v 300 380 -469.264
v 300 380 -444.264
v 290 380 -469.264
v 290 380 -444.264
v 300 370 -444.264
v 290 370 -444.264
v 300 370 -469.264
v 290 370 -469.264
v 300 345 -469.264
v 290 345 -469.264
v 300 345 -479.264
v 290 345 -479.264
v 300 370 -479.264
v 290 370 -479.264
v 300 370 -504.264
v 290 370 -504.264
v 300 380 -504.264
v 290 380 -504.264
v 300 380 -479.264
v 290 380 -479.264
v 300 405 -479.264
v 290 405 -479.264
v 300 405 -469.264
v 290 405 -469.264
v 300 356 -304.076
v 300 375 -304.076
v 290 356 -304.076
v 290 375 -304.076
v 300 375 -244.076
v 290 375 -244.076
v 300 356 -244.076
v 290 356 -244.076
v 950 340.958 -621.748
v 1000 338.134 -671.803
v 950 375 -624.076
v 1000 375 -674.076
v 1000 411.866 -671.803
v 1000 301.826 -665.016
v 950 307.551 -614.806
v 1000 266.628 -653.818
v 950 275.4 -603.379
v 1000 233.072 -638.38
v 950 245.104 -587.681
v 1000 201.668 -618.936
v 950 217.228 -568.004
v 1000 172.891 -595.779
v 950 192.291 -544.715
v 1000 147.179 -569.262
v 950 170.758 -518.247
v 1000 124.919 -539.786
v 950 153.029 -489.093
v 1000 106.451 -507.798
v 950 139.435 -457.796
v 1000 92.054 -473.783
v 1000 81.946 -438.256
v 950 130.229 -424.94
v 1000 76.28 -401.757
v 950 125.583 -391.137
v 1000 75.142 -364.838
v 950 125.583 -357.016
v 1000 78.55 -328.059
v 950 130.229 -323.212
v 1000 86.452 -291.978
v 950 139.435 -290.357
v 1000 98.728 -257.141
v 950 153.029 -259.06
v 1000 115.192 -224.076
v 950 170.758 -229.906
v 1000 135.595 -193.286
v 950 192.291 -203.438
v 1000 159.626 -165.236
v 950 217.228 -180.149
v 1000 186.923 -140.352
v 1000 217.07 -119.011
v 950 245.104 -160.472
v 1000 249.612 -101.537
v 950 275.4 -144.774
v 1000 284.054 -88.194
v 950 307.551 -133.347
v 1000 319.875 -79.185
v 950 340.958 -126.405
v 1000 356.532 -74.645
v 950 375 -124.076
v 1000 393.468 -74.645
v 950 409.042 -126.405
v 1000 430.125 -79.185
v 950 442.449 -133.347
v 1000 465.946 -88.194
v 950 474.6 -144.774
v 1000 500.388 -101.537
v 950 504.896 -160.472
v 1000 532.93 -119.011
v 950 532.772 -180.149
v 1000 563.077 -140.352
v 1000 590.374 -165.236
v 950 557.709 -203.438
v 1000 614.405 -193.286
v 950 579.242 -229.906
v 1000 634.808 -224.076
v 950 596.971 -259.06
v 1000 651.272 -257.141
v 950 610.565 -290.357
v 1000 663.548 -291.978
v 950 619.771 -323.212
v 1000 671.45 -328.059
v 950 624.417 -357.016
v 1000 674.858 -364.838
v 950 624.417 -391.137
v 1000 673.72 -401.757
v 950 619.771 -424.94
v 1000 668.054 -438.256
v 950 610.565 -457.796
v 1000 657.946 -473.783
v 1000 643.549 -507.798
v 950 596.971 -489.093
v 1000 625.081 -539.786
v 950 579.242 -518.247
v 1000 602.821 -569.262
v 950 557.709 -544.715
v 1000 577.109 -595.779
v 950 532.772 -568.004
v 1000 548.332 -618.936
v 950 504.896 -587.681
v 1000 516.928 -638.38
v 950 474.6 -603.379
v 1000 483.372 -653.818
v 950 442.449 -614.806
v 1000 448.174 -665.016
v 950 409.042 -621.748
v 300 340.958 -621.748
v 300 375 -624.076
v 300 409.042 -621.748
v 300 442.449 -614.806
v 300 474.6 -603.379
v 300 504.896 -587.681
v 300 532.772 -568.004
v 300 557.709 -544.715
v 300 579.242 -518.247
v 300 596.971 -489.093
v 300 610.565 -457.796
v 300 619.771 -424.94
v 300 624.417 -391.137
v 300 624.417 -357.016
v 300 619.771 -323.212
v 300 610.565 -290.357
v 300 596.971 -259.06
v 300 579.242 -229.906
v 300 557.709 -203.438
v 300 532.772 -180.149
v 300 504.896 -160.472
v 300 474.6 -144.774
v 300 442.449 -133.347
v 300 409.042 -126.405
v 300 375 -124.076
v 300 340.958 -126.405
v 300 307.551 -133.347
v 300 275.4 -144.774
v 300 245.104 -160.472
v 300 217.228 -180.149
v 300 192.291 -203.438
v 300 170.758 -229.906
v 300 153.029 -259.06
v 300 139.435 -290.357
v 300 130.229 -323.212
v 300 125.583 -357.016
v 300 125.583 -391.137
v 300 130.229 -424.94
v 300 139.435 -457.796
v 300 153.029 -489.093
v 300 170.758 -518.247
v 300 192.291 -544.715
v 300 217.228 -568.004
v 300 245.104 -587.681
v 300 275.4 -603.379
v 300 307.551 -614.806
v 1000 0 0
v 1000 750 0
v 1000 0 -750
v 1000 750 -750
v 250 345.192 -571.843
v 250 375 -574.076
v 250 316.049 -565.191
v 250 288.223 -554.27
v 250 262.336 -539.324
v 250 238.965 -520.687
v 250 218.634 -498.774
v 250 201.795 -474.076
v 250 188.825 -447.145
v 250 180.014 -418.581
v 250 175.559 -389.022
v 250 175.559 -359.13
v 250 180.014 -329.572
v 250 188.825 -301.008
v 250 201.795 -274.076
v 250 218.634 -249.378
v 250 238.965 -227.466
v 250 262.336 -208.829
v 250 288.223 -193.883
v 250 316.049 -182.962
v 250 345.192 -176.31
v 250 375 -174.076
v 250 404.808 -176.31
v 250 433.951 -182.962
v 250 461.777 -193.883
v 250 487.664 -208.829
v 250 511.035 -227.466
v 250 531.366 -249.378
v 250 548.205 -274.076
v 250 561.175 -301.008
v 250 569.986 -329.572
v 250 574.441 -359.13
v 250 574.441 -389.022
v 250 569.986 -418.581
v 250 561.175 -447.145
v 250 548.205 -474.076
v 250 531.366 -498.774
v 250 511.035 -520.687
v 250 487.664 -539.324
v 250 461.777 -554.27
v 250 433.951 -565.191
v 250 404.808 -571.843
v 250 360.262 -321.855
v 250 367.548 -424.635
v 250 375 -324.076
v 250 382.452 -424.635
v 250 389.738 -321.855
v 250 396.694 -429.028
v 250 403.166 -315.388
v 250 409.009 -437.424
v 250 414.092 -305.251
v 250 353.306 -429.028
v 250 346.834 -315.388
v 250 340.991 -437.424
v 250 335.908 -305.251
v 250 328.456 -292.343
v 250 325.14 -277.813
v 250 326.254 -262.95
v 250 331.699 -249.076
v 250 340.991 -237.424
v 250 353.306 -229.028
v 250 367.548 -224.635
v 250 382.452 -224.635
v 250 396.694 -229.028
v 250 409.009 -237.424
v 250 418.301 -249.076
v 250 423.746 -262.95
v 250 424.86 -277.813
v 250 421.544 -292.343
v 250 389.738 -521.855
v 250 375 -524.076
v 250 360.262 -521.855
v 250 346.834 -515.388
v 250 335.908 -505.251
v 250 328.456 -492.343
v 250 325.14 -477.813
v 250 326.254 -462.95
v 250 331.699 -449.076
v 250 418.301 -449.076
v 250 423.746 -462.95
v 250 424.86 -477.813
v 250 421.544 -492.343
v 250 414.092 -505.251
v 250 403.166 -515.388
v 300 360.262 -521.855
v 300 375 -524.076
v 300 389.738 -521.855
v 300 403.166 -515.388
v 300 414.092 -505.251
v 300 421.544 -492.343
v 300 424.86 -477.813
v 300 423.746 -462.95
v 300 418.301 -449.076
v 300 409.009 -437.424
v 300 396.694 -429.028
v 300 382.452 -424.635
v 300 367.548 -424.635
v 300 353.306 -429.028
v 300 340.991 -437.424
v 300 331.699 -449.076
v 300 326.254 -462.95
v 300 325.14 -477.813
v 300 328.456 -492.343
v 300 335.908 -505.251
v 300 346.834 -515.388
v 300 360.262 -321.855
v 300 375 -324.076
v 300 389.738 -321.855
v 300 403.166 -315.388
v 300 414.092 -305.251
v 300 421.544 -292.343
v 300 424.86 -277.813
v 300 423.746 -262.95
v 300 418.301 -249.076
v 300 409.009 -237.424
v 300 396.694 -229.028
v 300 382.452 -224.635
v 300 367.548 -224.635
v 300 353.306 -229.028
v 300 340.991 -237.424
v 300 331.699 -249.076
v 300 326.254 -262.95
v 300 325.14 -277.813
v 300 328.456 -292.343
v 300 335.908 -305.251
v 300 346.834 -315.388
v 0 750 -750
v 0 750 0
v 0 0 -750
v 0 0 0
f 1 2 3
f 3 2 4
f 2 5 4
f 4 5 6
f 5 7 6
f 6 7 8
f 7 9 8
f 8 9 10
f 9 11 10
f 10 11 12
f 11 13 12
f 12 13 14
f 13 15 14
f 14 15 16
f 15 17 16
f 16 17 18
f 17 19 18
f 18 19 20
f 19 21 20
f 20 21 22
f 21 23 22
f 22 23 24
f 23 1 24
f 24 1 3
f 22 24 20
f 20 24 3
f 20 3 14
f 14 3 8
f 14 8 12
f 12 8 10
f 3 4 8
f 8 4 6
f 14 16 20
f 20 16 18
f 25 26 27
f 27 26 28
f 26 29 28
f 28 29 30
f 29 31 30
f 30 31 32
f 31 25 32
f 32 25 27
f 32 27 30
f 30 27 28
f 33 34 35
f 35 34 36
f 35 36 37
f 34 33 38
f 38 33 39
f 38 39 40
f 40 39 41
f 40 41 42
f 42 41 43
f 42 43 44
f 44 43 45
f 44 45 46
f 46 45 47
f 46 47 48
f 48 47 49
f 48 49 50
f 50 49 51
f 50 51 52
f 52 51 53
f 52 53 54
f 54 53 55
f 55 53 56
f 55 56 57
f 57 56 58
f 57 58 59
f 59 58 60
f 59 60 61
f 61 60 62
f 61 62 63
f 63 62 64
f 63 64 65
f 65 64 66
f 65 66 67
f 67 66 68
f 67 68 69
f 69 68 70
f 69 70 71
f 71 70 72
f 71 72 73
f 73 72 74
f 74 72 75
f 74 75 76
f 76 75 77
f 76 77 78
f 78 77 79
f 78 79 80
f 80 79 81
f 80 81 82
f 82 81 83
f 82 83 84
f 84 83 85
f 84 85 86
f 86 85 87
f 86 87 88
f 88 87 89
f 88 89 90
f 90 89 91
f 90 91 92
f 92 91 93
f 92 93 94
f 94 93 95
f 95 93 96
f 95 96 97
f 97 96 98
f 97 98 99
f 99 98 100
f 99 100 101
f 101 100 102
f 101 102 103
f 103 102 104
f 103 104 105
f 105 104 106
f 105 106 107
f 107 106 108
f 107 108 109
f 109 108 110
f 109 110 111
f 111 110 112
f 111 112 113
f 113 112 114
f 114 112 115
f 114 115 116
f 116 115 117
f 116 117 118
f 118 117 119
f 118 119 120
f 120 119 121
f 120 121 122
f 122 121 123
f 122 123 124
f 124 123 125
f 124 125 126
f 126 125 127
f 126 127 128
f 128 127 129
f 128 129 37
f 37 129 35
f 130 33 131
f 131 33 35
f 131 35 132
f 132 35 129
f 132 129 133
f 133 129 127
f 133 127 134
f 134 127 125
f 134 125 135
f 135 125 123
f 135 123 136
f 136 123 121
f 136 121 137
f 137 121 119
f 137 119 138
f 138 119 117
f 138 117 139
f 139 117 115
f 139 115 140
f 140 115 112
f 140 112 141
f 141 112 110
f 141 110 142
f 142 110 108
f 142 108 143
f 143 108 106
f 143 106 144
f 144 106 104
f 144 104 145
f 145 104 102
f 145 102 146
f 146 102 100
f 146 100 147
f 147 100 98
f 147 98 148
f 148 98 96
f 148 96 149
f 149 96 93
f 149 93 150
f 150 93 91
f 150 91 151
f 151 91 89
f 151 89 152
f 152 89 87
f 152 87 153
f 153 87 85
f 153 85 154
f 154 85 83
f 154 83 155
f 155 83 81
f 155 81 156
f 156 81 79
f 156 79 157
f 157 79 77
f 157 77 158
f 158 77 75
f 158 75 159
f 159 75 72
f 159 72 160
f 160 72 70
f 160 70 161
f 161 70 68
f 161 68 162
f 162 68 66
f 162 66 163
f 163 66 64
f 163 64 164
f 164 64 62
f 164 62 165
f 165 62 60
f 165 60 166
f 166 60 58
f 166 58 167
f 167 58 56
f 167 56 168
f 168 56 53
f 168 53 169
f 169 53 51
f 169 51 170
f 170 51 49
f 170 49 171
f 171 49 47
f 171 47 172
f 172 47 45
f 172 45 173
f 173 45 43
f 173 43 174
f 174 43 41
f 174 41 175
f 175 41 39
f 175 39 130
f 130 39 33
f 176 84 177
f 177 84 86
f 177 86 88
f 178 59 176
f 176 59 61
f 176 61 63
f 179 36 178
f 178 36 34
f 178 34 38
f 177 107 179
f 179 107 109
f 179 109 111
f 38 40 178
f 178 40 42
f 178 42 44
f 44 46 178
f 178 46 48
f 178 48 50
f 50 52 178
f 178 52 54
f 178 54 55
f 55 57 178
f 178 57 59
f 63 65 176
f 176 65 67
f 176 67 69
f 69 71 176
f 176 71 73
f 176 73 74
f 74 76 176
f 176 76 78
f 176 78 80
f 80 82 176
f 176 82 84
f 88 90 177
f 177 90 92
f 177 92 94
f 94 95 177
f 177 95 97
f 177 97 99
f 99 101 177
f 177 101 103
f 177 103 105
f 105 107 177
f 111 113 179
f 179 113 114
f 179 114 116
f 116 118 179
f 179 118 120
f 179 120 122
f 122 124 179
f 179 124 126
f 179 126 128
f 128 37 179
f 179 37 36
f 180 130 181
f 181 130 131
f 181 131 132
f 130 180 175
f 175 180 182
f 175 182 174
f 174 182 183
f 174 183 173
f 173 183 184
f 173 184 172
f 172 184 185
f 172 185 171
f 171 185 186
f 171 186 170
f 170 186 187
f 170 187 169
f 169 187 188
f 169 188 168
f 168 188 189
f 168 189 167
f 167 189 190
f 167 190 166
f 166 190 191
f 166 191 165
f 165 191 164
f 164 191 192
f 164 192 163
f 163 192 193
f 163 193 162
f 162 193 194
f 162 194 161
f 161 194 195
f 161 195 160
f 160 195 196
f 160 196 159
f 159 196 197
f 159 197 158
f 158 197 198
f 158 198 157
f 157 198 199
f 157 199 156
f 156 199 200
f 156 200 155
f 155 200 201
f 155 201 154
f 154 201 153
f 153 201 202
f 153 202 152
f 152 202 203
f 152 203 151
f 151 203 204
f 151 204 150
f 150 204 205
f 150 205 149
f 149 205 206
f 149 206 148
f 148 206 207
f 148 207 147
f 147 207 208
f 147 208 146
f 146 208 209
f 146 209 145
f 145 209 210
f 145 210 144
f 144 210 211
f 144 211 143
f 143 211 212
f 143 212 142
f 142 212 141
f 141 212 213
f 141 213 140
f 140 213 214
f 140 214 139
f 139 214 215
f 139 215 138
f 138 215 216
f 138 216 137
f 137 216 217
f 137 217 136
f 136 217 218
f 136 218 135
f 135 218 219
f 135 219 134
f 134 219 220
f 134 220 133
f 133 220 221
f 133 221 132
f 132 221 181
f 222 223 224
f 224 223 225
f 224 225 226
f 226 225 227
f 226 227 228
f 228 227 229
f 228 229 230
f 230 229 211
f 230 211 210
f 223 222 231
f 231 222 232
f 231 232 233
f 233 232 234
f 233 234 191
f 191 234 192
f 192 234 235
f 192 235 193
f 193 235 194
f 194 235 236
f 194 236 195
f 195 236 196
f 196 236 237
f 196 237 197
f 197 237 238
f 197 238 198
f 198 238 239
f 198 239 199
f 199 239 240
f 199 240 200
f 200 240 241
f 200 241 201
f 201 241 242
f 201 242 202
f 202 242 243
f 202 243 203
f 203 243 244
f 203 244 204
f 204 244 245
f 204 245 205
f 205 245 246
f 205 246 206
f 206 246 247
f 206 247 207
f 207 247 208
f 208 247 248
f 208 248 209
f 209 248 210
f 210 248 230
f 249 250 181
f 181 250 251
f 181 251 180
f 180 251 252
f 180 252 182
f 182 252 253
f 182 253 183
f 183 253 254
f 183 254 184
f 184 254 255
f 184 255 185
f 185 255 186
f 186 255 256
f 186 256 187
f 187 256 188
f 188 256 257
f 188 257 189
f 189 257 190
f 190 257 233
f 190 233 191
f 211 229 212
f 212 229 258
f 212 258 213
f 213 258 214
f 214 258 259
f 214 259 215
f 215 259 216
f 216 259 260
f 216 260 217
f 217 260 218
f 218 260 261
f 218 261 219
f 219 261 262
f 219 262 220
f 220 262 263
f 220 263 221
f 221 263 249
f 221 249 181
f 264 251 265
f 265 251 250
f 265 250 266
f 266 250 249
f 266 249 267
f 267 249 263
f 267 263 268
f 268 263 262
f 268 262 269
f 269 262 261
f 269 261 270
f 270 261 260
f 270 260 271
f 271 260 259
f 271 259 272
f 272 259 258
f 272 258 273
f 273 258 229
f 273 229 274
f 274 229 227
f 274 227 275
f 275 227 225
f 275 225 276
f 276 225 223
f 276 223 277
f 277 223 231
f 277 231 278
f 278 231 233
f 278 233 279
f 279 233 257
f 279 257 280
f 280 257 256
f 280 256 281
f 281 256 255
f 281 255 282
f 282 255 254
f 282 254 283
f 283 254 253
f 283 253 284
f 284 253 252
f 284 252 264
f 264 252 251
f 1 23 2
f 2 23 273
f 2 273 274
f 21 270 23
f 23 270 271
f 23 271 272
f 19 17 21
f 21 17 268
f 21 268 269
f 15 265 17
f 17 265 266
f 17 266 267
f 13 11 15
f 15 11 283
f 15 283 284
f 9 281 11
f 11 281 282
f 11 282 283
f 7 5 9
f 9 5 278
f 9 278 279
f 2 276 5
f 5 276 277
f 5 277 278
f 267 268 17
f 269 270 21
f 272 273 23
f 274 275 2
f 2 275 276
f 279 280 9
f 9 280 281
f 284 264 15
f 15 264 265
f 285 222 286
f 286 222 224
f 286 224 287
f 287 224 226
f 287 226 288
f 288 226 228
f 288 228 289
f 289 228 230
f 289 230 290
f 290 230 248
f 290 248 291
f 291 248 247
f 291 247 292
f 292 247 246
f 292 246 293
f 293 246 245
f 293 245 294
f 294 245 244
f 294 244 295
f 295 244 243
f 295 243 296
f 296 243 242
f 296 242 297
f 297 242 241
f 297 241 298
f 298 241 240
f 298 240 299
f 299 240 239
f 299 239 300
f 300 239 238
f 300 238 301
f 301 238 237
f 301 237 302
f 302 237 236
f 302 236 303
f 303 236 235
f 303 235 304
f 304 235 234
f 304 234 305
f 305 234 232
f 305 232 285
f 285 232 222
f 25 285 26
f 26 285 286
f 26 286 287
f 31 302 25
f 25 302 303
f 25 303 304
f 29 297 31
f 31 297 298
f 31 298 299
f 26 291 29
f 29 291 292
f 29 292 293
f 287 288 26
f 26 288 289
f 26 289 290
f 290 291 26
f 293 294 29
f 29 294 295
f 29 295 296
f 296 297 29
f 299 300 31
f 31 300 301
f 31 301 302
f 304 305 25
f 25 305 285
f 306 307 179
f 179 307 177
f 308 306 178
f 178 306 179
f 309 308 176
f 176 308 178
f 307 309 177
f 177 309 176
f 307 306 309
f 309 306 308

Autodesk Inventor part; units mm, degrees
ref_plane "YZ Plane" through (0, 0, 0) normal (1, 0, 0) x (0, 1, 0)
ref_plane "XZ Plane" through (0, 0, 0) normal (0, 1, 0) x (-1, 0, 0)
ref_plane "XY Plane" through (0, 0, 0) normal (0, 0, 1) x (1, 0, 0)
sketch "Sketch1" plane through (0, 0, 0) normal (1, 0, 0) x (0, 1, 0)
  line L0 (0, 0) -> (750, 0)
  line L1 (750, 0) -> (750, -750)
  line L2 (750, -750) -> (0, -750)
  line L3 (0, -750) -> (0, 0)
  dimension "d0" = 750
  dimension "d1" = 750
extrude "Extrusion1" add sketch "Sketch1" along normal blind 1000
sketch "Sketch2" plane through (1000, 0, 0) normal (1, 0, 0) x (0, 0, -1)
  line L0 (750, 0) -> (750, 750) projected
  line L1 (0, 0) -> (750, 0) projected
  circle A0 centre (374.0764, 375) radius 250
  dimension "d4" = 500
extrude "Extrusion2" cut sketch "Sketch2" against normal blind 750
sketch "Sketch3" plane through (250, 375, -374.0764) normal (1, 0, 0) x (0, 0, -1)
  line L0 (0, 0) -> (-100, 0)
  line L1 (0, 0) -> (100, 0)
  circle A0 centre (100, 0) radius 50
  circle A1 centre (-100, 0) radius 50
  point P0 (-374.0764, -375)
  dimension "d7" = 100
  dimension "d8" = 100
  dimension "d9" = 100
  dimension "d10" = 100
extrude "Extrusion3" add sketch "Sketch3" along normal blind 50
chamfer "Chamfer1" distance 50 angle 45 1 edges at (250, 375, -124.0764)
chamfer "Chamfer2" distance 50 angle 45 1 edges at (1000, 375, -124.0764)
sketch "Sketch4" plane through (300, 375, -274.0764) normal (1, 0, 0) x (0, 0, -1)
  line L0 (0, 0) -> (0, -19)
  line L1 (0, -19) -> (-30, -19)
  line L2 (0, -19) -> (30, -19)
  line L3 (30, -19) -> (30, 0)
  line L4 (30, 0) -> (-30, 0)
  line L5 (-30, 0) -> (-30, -19)
  line L6 (195.1877, 10) -> (195.1877, 30)
  line L7 (195.1877, 30) -> (205.1877, 30)
  line L8 (205.1877, -30) -> (195.1877, -30)
  line L9 (195.1877, -30) -> (195.1877, -10)
  line L10 (205.1877, 30) -> (205.1877, 10)
  line L11 (205.1877, -30) -> (205.1877, -10)
  line L12 (195.1877, -10) -> (195.1877, -5)
  line L13 (195.1877, -5) -> (170.1877, -5)
  line L14 (170.1877, -5) -> (170.1877, 5)
  line L15 (170.1877, 5) -> (195.1877, 5)
  line L16 (195.1877, 10) -> (195.1877, 5)
  line L17 (205.1877, 10) -> (205.1877, 5)
  line L18 (205.1877, 5) -> (230.1877, 5)
  line L19 (205.1877, -10) -> (205.1877, -5)
  line L20 (205.1877, -5) -> (230.1877, -5)
  line L21 (230.1877, 5) -> (230.1877, -5)
  point P0 (-274.0764, -375)
  dimension "d19" = 19
  dimension "d20" = 30
  dimension "d21" = 30
  dimension "d27" = 20
  dimension "d28" = 10
  dimension "d29" = 60
  dimension "d30" = 5
  dimension "d31" = 10
extrude "Extrusion4" cut sketch "Sketch4" against normal blind 10
properties part number "heavy lithium cell receptical"
